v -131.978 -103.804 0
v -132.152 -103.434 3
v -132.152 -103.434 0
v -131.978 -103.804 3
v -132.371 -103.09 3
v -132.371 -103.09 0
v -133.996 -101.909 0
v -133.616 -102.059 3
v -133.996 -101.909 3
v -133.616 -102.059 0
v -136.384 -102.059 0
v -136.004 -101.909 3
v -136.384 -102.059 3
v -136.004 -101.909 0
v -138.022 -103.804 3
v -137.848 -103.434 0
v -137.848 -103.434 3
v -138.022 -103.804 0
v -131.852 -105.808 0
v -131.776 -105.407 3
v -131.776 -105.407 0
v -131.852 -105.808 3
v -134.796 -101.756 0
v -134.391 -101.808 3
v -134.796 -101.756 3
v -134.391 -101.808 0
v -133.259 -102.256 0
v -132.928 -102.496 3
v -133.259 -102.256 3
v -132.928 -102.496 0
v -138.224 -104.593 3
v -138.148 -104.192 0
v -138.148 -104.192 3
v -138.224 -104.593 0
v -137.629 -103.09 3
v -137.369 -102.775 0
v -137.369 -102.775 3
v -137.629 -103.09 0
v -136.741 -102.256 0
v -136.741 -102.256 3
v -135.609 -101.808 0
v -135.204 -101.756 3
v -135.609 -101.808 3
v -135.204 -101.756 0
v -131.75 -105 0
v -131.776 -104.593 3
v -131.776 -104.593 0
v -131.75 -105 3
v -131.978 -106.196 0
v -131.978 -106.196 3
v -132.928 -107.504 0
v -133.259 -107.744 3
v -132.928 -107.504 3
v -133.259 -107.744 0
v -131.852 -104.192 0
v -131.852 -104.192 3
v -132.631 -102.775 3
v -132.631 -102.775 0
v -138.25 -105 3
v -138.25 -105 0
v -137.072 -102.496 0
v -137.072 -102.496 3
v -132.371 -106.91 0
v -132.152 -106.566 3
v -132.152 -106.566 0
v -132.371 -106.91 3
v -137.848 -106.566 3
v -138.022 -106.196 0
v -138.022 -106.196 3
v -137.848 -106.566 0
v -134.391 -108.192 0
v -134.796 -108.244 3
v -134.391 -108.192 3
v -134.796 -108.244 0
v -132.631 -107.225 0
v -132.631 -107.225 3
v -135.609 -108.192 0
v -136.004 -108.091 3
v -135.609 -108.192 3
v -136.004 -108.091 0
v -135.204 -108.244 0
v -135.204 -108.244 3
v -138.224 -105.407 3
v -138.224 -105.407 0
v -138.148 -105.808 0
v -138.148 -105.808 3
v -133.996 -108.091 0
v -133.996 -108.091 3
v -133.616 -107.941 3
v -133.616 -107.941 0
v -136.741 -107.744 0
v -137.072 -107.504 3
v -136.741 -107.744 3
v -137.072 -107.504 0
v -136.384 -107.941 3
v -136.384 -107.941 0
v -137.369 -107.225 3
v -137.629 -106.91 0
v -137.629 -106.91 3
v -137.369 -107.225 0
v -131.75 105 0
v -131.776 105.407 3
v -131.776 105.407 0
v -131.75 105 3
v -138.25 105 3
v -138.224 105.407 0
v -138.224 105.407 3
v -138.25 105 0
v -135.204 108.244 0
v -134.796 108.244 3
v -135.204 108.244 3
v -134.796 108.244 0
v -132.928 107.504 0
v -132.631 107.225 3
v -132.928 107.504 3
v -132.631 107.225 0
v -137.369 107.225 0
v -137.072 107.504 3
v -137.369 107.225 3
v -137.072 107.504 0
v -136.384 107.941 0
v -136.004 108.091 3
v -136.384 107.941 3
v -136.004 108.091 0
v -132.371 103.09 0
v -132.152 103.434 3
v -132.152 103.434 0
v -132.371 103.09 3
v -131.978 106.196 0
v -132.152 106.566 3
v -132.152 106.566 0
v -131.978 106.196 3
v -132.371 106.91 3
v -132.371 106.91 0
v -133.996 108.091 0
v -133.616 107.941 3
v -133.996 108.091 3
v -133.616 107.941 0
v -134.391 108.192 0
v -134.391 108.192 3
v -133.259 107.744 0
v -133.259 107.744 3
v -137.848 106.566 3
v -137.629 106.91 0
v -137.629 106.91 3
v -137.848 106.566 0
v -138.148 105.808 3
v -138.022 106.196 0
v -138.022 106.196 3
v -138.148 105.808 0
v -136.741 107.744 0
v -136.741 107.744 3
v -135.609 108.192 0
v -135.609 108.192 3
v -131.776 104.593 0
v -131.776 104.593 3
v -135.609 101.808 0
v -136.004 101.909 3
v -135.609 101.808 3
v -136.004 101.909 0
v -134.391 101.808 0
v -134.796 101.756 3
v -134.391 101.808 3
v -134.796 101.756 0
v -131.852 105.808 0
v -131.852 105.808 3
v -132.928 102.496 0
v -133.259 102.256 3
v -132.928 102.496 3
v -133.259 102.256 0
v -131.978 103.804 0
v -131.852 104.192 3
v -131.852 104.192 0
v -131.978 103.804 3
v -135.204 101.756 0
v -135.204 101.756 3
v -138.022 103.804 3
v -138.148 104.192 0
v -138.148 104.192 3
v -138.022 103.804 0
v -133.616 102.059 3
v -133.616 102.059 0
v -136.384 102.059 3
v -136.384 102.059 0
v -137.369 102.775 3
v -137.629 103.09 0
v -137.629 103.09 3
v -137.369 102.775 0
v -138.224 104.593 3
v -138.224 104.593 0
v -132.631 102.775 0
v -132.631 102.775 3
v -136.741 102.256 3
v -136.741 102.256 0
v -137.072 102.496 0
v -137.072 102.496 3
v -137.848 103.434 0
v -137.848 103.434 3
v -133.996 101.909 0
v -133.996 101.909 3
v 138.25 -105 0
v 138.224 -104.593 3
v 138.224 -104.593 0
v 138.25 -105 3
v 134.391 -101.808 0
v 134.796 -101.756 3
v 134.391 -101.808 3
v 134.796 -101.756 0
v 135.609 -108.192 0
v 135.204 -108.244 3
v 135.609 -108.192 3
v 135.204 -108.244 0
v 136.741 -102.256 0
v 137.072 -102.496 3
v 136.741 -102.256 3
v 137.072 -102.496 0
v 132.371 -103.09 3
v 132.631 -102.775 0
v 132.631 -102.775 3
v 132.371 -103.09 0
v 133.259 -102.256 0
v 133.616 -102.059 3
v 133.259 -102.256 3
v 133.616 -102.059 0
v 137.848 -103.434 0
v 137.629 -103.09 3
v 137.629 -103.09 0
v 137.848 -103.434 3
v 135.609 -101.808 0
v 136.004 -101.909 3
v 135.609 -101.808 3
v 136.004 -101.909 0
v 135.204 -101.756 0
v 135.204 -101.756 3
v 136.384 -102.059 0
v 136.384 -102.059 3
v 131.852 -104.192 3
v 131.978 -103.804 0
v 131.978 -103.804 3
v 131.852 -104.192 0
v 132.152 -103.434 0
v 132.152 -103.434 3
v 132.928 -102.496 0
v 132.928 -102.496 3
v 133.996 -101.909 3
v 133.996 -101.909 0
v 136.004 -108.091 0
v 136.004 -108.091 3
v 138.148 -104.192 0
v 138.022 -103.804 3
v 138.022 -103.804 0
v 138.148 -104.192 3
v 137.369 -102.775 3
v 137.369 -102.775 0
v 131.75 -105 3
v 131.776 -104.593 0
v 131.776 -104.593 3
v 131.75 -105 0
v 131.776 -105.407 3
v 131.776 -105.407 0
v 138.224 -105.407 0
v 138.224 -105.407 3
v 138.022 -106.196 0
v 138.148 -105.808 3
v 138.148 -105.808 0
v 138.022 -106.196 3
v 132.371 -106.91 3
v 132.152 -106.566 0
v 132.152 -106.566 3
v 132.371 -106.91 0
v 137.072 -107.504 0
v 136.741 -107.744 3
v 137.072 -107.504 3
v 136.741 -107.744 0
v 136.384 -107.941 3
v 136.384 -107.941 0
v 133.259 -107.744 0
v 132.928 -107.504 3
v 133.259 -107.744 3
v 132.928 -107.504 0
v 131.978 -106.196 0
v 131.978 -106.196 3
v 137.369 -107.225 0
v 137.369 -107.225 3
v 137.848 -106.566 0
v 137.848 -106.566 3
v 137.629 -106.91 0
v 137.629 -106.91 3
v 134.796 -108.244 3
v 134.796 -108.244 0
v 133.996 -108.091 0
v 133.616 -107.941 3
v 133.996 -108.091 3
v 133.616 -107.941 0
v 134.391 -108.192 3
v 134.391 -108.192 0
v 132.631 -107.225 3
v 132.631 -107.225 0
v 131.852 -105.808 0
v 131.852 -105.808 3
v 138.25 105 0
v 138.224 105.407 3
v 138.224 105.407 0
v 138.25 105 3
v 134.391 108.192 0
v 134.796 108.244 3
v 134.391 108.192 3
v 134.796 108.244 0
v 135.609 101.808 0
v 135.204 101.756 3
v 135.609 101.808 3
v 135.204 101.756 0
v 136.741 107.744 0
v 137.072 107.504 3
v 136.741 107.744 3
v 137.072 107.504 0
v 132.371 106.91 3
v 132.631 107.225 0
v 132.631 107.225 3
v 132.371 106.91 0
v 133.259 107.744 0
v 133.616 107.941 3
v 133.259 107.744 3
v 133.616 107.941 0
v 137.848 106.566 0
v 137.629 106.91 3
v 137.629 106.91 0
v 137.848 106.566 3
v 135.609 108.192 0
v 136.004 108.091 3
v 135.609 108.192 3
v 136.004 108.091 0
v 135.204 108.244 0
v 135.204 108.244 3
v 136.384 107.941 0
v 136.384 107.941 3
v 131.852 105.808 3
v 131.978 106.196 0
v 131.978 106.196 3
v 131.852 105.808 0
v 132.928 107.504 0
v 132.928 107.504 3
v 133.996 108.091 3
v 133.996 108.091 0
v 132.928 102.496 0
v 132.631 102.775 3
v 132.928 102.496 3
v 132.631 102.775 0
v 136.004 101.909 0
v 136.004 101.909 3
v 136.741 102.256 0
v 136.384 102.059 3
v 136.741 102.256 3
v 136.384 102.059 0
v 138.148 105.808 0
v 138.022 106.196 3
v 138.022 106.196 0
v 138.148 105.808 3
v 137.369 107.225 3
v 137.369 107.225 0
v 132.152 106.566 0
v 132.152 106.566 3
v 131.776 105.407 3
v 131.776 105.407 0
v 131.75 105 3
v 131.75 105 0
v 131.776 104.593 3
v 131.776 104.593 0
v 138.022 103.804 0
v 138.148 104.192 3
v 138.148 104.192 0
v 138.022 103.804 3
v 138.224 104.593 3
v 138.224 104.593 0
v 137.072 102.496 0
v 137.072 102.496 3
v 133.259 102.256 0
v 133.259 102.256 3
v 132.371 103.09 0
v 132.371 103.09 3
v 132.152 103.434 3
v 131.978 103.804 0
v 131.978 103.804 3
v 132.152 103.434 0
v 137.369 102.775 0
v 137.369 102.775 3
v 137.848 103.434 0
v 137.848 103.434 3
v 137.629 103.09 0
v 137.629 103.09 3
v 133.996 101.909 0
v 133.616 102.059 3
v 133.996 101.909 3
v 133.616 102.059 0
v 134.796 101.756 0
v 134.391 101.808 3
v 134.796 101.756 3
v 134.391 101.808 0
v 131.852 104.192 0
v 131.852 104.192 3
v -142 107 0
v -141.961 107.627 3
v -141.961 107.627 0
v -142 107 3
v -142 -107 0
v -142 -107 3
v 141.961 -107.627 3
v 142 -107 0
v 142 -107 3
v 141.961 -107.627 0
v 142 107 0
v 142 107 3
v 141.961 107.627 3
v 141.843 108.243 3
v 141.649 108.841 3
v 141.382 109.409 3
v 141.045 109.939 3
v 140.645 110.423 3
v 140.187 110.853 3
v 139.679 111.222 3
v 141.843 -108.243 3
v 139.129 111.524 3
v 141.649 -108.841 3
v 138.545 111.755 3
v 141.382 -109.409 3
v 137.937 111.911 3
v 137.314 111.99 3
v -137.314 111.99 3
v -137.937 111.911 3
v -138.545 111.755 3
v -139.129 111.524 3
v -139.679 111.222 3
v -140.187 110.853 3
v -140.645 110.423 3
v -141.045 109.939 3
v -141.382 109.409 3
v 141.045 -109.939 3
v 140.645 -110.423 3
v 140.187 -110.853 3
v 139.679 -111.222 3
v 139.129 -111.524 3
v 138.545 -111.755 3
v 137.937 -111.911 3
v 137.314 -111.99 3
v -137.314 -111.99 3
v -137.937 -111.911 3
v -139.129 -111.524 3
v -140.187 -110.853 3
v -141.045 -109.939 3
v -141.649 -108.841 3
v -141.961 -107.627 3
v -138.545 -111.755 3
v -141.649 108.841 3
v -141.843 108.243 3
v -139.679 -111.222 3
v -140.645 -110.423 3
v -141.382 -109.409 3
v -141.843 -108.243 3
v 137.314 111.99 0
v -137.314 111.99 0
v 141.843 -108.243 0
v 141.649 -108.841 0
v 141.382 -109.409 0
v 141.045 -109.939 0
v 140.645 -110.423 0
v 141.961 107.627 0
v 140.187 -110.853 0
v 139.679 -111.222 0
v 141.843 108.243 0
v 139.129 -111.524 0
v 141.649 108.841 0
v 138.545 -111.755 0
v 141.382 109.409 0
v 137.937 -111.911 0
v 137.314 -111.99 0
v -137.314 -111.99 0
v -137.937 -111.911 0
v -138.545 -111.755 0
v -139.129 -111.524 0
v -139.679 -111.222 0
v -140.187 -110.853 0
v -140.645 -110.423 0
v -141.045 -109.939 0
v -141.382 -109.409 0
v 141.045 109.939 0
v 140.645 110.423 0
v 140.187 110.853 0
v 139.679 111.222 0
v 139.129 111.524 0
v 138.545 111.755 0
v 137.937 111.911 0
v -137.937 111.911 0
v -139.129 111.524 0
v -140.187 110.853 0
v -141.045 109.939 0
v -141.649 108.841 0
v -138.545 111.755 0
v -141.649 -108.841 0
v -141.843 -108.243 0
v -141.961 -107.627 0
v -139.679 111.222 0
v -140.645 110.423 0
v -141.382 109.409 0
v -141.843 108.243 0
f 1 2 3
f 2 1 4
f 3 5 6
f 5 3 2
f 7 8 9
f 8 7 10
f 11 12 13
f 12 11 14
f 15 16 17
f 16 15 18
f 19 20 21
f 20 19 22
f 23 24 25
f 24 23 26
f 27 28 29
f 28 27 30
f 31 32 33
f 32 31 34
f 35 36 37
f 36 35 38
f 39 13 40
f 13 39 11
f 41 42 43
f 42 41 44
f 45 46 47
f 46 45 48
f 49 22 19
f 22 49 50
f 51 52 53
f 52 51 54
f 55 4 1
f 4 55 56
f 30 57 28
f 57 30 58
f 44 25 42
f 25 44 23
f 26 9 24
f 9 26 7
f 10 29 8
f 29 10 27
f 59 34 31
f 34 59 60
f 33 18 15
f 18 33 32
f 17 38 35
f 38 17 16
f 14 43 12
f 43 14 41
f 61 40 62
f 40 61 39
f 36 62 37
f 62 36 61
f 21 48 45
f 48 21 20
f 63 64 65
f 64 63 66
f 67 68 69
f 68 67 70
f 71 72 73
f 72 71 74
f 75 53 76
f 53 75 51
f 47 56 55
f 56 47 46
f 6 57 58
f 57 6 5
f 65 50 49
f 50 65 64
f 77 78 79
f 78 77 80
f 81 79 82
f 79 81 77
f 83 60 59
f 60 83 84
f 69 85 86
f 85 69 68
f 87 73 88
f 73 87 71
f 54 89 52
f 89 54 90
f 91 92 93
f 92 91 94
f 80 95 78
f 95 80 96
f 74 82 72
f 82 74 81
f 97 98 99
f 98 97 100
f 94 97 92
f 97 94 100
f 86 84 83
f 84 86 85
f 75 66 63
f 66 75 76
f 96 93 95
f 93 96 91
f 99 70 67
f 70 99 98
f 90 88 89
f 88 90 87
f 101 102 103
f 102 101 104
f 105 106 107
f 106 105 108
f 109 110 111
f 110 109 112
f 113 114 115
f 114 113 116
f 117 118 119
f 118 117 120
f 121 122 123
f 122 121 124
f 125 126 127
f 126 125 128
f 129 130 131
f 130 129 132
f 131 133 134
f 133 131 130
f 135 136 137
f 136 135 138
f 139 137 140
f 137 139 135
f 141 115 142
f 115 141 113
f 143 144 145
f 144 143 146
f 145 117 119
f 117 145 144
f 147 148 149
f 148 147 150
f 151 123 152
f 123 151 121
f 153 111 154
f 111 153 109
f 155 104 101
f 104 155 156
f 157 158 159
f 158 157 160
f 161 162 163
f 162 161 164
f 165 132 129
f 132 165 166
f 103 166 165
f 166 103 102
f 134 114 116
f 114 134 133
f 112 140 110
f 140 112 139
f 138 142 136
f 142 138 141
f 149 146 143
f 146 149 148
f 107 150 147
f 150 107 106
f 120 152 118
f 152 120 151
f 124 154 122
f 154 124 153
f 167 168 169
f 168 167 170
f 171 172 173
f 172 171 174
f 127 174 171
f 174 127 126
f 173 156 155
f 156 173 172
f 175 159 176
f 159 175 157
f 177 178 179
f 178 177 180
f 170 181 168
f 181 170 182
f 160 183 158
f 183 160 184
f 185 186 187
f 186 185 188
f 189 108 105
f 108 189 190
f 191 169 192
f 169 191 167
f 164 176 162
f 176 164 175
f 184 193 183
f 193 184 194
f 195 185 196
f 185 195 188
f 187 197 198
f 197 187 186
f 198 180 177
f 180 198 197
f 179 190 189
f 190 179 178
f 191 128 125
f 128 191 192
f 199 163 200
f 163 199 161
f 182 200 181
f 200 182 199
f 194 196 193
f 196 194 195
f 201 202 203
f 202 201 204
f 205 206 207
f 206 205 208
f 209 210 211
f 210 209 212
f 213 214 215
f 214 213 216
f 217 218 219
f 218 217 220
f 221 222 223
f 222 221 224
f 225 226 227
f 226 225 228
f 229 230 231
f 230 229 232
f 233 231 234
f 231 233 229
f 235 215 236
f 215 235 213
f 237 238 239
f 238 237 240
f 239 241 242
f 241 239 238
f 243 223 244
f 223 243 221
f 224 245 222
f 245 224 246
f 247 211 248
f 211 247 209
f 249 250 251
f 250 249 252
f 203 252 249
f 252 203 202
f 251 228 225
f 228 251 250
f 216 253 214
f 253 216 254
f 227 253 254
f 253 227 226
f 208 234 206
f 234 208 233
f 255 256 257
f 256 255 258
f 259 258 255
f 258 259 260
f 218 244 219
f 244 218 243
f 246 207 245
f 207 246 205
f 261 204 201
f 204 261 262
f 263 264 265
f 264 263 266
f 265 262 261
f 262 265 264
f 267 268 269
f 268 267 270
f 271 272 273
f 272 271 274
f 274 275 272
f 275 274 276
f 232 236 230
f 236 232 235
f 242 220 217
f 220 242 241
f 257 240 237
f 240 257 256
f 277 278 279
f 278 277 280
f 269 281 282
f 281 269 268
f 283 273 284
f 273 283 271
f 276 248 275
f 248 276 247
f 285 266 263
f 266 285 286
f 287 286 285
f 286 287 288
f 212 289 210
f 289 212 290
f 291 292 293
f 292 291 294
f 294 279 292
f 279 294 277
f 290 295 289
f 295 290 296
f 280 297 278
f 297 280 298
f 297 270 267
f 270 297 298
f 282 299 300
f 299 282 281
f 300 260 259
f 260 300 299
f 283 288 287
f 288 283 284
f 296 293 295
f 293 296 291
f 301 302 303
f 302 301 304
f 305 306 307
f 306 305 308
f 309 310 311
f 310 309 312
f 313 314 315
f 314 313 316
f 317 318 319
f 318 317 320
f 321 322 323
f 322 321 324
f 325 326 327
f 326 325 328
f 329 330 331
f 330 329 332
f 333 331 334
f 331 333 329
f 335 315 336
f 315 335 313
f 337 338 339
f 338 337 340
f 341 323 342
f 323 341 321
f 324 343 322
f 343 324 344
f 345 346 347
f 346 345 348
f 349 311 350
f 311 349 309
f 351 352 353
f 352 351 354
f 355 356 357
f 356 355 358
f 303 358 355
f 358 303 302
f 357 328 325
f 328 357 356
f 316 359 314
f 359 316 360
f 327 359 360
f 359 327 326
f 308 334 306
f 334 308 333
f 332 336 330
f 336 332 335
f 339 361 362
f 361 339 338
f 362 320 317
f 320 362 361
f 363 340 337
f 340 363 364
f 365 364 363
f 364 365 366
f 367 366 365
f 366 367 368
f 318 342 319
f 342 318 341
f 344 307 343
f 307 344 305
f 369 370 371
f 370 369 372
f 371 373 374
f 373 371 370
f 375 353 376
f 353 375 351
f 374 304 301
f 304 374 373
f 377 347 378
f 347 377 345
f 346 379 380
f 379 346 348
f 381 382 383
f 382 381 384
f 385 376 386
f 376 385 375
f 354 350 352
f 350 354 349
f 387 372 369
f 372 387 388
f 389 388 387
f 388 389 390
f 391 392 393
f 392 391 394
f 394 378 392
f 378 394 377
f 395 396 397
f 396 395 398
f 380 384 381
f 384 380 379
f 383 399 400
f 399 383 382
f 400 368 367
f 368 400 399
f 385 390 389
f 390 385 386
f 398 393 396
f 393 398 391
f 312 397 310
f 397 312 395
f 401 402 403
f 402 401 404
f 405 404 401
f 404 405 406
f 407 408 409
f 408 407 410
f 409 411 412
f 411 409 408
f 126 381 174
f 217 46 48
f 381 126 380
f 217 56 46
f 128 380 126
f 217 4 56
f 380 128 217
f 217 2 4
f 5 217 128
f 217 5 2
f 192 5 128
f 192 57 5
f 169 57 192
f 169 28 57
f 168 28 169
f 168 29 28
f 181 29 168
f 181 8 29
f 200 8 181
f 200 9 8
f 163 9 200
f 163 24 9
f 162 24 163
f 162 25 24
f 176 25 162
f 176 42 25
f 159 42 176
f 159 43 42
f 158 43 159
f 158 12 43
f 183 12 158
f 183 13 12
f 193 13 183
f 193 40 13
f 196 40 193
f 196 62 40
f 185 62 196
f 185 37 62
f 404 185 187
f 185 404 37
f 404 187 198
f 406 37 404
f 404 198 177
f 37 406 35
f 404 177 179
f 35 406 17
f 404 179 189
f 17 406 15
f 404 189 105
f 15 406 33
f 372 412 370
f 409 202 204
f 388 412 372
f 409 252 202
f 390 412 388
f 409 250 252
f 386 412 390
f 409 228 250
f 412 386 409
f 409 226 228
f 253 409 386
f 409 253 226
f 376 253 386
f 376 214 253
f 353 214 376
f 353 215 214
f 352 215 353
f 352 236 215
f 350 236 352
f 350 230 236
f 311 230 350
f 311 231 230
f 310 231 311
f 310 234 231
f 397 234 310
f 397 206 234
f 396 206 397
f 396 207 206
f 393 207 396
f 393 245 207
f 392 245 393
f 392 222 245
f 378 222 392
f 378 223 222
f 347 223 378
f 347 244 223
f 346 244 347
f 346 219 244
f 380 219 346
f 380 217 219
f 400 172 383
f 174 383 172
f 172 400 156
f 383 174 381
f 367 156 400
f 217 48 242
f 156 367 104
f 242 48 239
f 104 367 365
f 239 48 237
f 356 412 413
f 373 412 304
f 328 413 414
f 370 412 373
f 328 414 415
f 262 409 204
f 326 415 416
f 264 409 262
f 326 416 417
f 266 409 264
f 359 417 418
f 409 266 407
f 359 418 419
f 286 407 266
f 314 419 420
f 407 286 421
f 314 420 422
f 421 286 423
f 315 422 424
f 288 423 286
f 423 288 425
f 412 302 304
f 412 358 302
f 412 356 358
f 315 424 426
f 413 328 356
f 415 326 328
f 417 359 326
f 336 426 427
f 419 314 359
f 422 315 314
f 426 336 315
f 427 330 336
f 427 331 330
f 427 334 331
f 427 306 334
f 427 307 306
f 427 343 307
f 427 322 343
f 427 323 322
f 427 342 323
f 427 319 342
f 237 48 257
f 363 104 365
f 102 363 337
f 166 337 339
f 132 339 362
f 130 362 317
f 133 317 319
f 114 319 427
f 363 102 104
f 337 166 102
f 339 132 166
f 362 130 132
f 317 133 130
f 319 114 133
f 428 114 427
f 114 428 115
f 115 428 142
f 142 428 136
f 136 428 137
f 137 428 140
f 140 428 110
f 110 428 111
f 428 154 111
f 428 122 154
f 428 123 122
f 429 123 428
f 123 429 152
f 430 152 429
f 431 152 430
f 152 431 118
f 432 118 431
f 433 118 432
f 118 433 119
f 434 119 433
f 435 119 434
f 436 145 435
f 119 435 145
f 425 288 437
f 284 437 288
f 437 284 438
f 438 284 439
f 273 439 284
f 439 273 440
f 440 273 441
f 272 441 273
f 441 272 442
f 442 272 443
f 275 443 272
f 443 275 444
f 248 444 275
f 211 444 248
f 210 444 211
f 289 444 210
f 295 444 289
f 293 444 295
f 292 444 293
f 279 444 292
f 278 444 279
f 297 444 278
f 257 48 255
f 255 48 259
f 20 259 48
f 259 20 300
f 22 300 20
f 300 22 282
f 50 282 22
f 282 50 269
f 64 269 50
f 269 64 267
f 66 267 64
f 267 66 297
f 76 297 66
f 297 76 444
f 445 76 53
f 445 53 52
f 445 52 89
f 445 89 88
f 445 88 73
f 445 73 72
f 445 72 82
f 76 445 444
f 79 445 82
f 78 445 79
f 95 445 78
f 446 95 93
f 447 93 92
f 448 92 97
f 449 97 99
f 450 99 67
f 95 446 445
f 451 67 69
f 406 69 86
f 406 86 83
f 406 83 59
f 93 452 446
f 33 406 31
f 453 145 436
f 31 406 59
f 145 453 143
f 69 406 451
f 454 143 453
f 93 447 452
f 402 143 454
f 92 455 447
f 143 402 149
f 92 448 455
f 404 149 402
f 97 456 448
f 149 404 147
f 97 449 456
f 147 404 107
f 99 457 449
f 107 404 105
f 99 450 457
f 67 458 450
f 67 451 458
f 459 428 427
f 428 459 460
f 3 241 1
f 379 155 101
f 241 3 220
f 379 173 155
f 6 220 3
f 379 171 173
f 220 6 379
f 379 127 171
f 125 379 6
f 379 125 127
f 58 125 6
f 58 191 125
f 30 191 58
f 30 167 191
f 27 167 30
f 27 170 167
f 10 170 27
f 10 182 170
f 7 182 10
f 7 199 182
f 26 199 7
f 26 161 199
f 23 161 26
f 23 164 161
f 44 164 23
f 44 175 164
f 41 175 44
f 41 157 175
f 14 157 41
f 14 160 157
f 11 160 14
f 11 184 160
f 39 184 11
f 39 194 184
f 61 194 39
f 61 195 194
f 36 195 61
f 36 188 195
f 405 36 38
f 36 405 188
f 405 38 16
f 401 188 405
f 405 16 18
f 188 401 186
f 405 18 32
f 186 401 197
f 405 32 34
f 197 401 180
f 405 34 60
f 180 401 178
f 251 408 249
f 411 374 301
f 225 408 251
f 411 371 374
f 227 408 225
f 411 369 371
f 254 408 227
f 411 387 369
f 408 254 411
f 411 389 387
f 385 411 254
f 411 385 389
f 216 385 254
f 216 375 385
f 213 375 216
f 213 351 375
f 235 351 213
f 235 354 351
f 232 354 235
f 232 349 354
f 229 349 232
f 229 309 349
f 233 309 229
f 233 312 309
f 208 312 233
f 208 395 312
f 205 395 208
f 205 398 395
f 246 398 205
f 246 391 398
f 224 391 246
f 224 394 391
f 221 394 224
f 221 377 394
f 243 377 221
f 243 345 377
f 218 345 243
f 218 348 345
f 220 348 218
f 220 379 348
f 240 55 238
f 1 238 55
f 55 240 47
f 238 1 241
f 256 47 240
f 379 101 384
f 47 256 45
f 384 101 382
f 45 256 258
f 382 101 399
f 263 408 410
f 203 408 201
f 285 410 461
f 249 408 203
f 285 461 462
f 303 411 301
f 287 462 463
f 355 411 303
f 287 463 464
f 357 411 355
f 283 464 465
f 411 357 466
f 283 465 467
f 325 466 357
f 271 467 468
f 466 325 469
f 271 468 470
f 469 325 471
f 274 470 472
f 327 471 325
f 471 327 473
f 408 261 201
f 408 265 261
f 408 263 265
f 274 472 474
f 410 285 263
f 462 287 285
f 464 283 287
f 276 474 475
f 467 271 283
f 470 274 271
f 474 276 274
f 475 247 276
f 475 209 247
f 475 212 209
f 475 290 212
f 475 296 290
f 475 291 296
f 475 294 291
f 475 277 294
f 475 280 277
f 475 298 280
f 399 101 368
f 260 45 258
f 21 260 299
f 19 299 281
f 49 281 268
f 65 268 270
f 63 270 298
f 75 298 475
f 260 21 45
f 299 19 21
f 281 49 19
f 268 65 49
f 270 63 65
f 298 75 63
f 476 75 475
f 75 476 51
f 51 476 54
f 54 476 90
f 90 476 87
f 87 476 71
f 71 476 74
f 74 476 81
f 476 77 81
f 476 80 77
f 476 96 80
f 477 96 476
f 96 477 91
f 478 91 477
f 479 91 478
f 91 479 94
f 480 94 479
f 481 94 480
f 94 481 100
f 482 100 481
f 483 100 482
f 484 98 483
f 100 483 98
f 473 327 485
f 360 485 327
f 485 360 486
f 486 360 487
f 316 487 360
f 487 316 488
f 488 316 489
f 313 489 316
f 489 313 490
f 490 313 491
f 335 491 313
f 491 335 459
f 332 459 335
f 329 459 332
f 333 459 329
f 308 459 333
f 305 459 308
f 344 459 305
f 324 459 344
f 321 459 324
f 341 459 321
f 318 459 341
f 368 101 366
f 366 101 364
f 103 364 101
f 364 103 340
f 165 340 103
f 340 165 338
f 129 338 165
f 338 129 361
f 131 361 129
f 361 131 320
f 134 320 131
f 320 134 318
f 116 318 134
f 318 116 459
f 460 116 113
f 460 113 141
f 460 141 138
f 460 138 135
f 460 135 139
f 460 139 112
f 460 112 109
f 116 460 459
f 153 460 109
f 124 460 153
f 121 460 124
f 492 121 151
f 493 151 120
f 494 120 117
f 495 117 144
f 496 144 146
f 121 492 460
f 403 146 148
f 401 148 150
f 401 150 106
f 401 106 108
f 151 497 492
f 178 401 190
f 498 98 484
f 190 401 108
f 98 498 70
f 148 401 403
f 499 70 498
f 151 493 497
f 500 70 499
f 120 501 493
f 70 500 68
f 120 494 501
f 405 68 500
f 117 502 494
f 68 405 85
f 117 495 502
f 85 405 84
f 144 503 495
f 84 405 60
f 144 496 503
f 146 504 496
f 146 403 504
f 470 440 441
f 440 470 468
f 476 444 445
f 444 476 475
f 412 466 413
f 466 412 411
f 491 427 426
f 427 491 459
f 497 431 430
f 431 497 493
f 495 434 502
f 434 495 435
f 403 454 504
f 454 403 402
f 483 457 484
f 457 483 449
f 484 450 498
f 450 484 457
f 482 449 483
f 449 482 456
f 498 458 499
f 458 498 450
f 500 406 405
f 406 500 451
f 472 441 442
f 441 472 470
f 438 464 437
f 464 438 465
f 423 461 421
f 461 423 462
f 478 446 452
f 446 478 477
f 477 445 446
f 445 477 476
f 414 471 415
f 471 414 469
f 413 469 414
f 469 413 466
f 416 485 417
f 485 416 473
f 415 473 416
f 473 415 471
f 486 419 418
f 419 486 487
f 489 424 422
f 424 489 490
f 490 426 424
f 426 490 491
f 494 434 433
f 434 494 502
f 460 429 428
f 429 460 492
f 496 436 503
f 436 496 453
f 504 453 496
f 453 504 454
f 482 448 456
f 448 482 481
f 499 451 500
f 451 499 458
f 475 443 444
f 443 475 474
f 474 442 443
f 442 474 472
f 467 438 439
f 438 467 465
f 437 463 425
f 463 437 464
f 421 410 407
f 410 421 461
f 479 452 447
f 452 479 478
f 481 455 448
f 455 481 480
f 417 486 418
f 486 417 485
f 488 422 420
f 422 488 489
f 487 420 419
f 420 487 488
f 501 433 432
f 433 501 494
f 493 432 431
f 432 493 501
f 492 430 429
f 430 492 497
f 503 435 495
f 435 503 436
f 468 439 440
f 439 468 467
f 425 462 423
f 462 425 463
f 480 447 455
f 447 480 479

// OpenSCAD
$fn = 50;


difference() {
	union() {
		hull() {
			translate(v = [-137.0000000000, 107.0000000000, 0]) {
				cylinder(h = 3, r = 5);
			}
			translate(v = [137.0000000000, 107.0000000000, 0]) {
				cylinder(h = 3, r = 5);
			}
			translate(v = [-137.0000000000, -107.0000000000, 0]) {
				cylinder(h = 3, r = 5);
			}
			translate(v = [137.0000000000, -107.0000000000, 0]) {
				cylinder(h = 3, r = 5);
			}
		}
	}
	union() {
		translate(v = [-135.0000000000, -105.0000000000, -100.0000000000]) {
			cylinder(h = 200, r = 3.2500000000);
		}
		translate(v = [-135.0000000000, 105.0000000000, -100.0000000000]) {
			cylinder(h = 200, r = 3.2500000000);
		}
		translate(v = [135.0000000000, -105.0000000000, -100.0000000000]) {
			cylinder(h = 200, r = 3.2500000000);
		}
		translate(v = [135.0000000000, 105.0000000000, -100.0000000000]) {
			cylinder(h = 200, r = 3.2500000000);
		}
	}
}
